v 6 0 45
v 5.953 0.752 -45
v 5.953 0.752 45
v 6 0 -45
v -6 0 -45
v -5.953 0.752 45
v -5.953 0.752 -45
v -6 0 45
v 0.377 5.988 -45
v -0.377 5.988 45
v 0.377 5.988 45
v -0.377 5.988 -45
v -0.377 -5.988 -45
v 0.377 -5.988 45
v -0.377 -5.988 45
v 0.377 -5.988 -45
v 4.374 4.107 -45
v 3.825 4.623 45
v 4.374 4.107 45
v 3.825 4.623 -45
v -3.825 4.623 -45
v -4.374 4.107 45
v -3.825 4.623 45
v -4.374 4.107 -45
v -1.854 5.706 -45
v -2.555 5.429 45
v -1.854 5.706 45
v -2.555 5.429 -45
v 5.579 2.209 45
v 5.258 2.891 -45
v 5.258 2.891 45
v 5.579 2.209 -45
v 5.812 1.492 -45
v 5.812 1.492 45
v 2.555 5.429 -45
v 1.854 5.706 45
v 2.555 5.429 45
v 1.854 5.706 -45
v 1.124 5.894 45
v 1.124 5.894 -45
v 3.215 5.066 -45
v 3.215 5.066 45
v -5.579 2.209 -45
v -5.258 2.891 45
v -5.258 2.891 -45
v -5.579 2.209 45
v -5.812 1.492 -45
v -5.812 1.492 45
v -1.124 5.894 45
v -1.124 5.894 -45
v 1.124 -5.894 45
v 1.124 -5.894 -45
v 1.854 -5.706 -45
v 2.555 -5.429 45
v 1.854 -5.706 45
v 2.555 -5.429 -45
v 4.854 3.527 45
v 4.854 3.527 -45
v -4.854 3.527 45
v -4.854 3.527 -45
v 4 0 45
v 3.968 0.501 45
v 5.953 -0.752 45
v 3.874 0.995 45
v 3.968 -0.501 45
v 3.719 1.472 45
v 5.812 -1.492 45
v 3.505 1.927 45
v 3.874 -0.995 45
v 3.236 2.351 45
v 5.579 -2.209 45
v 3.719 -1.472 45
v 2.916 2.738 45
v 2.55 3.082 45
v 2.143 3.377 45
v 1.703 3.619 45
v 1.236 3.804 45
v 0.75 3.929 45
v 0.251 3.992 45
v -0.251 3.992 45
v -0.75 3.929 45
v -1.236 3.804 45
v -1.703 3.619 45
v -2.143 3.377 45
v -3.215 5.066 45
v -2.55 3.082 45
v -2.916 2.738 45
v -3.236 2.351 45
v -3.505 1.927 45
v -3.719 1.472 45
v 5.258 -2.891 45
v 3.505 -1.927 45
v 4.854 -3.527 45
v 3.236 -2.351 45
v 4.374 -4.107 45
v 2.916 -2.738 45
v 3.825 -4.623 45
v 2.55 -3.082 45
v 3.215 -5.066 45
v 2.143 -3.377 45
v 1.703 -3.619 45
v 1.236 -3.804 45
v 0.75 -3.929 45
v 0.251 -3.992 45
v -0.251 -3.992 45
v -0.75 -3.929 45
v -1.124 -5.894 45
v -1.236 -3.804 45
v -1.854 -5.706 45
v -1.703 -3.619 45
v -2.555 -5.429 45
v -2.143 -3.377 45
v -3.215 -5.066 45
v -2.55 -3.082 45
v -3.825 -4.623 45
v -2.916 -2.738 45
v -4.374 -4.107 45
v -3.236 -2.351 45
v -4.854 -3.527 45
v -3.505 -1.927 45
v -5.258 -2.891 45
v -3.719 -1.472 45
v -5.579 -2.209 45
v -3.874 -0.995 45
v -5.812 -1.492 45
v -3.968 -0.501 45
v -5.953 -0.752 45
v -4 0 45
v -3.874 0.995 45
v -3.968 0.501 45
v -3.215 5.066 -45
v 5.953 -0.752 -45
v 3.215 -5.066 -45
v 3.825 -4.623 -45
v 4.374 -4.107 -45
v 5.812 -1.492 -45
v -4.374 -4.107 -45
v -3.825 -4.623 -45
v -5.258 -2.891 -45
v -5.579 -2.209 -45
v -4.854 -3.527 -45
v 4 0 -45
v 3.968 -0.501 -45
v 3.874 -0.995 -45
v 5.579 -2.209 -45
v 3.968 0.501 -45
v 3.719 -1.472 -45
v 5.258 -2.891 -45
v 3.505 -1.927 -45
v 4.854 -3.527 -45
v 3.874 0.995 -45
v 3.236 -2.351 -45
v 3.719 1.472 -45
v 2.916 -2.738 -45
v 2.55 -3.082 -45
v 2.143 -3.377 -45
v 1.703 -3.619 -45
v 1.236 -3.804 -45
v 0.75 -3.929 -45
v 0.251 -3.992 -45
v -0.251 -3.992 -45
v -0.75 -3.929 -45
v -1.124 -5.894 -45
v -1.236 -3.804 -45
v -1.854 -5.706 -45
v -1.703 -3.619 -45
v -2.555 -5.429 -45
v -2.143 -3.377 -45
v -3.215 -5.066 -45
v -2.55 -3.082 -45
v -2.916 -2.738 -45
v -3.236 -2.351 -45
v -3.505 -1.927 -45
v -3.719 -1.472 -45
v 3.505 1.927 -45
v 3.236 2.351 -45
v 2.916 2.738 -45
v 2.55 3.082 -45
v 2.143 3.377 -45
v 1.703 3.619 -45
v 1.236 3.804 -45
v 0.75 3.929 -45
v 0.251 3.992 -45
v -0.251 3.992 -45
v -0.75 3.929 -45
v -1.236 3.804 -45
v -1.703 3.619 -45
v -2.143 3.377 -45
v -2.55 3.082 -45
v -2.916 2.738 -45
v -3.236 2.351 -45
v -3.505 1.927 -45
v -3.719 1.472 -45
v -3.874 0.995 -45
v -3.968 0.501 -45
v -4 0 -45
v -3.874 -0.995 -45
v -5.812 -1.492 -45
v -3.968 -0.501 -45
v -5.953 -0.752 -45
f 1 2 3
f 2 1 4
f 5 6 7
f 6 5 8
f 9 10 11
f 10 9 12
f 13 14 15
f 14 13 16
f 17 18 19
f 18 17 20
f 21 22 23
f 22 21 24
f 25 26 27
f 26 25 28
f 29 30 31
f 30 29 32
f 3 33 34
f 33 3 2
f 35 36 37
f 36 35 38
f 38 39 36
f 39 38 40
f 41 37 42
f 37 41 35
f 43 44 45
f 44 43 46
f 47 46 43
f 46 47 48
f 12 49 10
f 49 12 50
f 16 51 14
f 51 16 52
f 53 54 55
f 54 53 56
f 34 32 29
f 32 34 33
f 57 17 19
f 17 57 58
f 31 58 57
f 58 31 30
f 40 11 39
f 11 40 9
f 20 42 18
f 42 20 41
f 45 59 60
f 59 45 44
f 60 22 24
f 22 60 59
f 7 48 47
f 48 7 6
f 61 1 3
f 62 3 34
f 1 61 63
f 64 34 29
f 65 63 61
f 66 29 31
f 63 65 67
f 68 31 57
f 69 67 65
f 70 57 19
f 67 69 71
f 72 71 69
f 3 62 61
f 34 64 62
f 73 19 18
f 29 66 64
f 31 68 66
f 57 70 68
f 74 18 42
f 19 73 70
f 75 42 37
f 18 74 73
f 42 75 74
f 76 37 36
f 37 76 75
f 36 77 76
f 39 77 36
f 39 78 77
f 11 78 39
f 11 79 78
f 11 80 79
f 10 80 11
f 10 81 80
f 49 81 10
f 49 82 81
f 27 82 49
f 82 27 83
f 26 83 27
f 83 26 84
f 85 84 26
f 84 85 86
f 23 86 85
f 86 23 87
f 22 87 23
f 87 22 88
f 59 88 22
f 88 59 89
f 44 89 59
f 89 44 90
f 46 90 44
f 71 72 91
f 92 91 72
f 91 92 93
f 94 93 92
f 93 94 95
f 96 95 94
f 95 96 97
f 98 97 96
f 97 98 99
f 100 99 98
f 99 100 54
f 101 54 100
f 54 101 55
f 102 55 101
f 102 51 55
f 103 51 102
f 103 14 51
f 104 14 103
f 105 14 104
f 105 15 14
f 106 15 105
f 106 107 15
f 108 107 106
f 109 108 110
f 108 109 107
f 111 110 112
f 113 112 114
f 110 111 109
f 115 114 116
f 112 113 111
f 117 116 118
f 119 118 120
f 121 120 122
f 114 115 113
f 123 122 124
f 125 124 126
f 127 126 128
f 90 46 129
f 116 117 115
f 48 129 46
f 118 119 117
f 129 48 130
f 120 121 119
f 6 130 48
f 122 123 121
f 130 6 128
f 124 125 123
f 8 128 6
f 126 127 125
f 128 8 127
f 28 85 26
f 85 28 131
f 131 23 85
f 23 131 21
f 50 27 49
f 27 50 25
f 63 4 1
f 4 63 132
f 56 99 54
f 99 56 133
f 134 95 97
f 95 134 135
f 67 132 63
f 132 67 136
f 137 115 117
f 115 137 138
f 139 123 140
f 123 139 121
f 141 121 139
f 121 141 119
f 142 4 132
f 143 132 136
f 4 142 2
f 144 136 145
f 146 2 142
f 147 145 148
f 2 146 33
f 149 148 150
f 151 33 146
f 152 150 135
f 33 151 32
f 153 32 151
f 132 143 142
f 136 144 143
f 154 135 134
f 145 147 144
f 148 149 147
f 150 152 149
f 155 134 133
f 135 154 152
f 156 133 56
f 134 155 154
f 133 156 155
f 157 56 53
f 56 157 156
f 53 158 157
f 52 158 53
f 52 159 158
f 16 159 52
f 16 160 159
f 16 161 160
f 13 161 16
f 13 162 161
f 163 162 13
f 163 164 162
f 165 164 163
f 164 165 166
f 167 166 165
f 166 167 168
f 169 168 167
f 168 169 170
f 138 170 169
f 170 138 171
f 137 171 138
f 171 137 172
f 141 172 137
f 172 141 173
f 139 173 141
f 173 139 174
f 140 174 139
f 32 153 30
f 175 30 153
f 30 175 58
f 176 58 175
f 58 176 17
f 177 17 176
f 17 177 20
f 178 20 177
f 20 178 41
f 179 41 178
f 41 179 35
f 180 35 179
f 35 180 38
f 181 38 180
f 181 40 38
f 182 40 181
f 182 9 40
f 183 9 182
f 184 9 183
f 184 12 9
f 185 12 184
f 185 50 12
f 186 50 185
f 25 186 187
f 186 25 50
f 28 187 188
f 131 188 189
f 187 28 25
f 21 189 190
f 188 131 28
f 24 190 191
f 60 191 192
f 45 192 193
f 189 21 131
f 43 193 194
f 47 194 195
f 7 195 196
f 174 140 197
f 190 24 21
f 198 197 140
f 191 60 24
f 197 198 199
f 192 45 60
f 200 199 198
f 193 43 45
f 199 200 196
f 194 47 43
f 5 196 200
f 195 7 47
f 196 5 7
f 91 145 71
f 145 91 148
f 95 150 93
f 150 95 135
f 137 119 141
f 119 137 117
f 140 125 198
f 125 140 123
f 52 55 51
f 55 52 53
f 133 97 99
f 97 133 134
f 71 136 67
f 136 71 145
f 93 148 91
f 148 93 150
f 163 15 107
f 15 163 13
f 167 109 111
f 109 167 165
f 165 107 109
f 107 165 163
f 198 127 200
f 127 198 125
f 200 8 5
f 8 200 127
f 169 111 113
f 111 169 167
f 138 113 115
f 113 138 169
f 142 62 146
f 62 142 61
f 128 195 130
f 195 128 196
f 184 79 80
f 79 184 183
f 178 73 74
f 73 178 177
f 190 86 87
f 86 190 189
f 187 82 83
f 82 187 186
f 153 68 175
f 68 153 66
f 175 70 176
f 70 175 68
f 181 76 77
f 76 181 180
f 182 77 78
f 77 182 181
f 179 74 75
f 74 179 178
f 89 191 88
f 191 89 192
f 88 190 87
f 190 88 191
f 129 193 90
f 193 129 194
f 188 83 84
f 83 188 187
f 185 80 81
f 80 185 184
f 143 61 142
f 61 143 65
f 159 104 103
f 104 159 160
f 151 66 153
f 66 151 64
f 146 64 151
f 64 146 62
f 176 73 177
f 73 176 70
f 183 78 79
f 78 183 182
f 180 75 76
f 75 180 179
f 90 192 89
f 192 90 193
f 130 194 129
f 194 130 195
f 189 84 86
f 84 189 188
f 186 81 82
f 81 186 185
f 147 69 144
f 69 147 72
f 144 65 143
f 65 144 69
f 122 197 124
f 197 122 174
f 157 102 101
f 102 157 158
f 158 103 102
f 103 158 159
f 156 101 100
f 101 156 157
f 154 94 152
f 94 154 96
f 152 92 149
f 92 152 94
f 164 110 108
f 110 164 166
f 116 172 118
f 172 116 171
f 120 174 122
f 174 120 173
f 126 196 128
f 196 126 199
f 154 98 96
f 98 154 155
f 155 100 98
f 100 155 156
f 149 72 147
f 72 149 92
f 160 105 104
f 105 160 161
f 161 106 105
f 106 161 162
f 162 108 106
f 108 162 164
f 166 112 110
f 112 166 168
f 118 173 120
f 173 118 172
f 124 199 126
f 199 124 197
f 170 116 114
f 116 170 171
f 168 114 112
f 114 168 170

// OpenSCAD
$fn = 50;


difference() {
	union() {
		translate(v = [0, 0, -45.0000000000]) {
			cylinder(h = 90, r = 6.0000000000);
		}
	}
	union() {
		translate(v = [0, 0, -100.0000000000]) {
			cylinder(h = 200, r = 4);
		}
	}
}
